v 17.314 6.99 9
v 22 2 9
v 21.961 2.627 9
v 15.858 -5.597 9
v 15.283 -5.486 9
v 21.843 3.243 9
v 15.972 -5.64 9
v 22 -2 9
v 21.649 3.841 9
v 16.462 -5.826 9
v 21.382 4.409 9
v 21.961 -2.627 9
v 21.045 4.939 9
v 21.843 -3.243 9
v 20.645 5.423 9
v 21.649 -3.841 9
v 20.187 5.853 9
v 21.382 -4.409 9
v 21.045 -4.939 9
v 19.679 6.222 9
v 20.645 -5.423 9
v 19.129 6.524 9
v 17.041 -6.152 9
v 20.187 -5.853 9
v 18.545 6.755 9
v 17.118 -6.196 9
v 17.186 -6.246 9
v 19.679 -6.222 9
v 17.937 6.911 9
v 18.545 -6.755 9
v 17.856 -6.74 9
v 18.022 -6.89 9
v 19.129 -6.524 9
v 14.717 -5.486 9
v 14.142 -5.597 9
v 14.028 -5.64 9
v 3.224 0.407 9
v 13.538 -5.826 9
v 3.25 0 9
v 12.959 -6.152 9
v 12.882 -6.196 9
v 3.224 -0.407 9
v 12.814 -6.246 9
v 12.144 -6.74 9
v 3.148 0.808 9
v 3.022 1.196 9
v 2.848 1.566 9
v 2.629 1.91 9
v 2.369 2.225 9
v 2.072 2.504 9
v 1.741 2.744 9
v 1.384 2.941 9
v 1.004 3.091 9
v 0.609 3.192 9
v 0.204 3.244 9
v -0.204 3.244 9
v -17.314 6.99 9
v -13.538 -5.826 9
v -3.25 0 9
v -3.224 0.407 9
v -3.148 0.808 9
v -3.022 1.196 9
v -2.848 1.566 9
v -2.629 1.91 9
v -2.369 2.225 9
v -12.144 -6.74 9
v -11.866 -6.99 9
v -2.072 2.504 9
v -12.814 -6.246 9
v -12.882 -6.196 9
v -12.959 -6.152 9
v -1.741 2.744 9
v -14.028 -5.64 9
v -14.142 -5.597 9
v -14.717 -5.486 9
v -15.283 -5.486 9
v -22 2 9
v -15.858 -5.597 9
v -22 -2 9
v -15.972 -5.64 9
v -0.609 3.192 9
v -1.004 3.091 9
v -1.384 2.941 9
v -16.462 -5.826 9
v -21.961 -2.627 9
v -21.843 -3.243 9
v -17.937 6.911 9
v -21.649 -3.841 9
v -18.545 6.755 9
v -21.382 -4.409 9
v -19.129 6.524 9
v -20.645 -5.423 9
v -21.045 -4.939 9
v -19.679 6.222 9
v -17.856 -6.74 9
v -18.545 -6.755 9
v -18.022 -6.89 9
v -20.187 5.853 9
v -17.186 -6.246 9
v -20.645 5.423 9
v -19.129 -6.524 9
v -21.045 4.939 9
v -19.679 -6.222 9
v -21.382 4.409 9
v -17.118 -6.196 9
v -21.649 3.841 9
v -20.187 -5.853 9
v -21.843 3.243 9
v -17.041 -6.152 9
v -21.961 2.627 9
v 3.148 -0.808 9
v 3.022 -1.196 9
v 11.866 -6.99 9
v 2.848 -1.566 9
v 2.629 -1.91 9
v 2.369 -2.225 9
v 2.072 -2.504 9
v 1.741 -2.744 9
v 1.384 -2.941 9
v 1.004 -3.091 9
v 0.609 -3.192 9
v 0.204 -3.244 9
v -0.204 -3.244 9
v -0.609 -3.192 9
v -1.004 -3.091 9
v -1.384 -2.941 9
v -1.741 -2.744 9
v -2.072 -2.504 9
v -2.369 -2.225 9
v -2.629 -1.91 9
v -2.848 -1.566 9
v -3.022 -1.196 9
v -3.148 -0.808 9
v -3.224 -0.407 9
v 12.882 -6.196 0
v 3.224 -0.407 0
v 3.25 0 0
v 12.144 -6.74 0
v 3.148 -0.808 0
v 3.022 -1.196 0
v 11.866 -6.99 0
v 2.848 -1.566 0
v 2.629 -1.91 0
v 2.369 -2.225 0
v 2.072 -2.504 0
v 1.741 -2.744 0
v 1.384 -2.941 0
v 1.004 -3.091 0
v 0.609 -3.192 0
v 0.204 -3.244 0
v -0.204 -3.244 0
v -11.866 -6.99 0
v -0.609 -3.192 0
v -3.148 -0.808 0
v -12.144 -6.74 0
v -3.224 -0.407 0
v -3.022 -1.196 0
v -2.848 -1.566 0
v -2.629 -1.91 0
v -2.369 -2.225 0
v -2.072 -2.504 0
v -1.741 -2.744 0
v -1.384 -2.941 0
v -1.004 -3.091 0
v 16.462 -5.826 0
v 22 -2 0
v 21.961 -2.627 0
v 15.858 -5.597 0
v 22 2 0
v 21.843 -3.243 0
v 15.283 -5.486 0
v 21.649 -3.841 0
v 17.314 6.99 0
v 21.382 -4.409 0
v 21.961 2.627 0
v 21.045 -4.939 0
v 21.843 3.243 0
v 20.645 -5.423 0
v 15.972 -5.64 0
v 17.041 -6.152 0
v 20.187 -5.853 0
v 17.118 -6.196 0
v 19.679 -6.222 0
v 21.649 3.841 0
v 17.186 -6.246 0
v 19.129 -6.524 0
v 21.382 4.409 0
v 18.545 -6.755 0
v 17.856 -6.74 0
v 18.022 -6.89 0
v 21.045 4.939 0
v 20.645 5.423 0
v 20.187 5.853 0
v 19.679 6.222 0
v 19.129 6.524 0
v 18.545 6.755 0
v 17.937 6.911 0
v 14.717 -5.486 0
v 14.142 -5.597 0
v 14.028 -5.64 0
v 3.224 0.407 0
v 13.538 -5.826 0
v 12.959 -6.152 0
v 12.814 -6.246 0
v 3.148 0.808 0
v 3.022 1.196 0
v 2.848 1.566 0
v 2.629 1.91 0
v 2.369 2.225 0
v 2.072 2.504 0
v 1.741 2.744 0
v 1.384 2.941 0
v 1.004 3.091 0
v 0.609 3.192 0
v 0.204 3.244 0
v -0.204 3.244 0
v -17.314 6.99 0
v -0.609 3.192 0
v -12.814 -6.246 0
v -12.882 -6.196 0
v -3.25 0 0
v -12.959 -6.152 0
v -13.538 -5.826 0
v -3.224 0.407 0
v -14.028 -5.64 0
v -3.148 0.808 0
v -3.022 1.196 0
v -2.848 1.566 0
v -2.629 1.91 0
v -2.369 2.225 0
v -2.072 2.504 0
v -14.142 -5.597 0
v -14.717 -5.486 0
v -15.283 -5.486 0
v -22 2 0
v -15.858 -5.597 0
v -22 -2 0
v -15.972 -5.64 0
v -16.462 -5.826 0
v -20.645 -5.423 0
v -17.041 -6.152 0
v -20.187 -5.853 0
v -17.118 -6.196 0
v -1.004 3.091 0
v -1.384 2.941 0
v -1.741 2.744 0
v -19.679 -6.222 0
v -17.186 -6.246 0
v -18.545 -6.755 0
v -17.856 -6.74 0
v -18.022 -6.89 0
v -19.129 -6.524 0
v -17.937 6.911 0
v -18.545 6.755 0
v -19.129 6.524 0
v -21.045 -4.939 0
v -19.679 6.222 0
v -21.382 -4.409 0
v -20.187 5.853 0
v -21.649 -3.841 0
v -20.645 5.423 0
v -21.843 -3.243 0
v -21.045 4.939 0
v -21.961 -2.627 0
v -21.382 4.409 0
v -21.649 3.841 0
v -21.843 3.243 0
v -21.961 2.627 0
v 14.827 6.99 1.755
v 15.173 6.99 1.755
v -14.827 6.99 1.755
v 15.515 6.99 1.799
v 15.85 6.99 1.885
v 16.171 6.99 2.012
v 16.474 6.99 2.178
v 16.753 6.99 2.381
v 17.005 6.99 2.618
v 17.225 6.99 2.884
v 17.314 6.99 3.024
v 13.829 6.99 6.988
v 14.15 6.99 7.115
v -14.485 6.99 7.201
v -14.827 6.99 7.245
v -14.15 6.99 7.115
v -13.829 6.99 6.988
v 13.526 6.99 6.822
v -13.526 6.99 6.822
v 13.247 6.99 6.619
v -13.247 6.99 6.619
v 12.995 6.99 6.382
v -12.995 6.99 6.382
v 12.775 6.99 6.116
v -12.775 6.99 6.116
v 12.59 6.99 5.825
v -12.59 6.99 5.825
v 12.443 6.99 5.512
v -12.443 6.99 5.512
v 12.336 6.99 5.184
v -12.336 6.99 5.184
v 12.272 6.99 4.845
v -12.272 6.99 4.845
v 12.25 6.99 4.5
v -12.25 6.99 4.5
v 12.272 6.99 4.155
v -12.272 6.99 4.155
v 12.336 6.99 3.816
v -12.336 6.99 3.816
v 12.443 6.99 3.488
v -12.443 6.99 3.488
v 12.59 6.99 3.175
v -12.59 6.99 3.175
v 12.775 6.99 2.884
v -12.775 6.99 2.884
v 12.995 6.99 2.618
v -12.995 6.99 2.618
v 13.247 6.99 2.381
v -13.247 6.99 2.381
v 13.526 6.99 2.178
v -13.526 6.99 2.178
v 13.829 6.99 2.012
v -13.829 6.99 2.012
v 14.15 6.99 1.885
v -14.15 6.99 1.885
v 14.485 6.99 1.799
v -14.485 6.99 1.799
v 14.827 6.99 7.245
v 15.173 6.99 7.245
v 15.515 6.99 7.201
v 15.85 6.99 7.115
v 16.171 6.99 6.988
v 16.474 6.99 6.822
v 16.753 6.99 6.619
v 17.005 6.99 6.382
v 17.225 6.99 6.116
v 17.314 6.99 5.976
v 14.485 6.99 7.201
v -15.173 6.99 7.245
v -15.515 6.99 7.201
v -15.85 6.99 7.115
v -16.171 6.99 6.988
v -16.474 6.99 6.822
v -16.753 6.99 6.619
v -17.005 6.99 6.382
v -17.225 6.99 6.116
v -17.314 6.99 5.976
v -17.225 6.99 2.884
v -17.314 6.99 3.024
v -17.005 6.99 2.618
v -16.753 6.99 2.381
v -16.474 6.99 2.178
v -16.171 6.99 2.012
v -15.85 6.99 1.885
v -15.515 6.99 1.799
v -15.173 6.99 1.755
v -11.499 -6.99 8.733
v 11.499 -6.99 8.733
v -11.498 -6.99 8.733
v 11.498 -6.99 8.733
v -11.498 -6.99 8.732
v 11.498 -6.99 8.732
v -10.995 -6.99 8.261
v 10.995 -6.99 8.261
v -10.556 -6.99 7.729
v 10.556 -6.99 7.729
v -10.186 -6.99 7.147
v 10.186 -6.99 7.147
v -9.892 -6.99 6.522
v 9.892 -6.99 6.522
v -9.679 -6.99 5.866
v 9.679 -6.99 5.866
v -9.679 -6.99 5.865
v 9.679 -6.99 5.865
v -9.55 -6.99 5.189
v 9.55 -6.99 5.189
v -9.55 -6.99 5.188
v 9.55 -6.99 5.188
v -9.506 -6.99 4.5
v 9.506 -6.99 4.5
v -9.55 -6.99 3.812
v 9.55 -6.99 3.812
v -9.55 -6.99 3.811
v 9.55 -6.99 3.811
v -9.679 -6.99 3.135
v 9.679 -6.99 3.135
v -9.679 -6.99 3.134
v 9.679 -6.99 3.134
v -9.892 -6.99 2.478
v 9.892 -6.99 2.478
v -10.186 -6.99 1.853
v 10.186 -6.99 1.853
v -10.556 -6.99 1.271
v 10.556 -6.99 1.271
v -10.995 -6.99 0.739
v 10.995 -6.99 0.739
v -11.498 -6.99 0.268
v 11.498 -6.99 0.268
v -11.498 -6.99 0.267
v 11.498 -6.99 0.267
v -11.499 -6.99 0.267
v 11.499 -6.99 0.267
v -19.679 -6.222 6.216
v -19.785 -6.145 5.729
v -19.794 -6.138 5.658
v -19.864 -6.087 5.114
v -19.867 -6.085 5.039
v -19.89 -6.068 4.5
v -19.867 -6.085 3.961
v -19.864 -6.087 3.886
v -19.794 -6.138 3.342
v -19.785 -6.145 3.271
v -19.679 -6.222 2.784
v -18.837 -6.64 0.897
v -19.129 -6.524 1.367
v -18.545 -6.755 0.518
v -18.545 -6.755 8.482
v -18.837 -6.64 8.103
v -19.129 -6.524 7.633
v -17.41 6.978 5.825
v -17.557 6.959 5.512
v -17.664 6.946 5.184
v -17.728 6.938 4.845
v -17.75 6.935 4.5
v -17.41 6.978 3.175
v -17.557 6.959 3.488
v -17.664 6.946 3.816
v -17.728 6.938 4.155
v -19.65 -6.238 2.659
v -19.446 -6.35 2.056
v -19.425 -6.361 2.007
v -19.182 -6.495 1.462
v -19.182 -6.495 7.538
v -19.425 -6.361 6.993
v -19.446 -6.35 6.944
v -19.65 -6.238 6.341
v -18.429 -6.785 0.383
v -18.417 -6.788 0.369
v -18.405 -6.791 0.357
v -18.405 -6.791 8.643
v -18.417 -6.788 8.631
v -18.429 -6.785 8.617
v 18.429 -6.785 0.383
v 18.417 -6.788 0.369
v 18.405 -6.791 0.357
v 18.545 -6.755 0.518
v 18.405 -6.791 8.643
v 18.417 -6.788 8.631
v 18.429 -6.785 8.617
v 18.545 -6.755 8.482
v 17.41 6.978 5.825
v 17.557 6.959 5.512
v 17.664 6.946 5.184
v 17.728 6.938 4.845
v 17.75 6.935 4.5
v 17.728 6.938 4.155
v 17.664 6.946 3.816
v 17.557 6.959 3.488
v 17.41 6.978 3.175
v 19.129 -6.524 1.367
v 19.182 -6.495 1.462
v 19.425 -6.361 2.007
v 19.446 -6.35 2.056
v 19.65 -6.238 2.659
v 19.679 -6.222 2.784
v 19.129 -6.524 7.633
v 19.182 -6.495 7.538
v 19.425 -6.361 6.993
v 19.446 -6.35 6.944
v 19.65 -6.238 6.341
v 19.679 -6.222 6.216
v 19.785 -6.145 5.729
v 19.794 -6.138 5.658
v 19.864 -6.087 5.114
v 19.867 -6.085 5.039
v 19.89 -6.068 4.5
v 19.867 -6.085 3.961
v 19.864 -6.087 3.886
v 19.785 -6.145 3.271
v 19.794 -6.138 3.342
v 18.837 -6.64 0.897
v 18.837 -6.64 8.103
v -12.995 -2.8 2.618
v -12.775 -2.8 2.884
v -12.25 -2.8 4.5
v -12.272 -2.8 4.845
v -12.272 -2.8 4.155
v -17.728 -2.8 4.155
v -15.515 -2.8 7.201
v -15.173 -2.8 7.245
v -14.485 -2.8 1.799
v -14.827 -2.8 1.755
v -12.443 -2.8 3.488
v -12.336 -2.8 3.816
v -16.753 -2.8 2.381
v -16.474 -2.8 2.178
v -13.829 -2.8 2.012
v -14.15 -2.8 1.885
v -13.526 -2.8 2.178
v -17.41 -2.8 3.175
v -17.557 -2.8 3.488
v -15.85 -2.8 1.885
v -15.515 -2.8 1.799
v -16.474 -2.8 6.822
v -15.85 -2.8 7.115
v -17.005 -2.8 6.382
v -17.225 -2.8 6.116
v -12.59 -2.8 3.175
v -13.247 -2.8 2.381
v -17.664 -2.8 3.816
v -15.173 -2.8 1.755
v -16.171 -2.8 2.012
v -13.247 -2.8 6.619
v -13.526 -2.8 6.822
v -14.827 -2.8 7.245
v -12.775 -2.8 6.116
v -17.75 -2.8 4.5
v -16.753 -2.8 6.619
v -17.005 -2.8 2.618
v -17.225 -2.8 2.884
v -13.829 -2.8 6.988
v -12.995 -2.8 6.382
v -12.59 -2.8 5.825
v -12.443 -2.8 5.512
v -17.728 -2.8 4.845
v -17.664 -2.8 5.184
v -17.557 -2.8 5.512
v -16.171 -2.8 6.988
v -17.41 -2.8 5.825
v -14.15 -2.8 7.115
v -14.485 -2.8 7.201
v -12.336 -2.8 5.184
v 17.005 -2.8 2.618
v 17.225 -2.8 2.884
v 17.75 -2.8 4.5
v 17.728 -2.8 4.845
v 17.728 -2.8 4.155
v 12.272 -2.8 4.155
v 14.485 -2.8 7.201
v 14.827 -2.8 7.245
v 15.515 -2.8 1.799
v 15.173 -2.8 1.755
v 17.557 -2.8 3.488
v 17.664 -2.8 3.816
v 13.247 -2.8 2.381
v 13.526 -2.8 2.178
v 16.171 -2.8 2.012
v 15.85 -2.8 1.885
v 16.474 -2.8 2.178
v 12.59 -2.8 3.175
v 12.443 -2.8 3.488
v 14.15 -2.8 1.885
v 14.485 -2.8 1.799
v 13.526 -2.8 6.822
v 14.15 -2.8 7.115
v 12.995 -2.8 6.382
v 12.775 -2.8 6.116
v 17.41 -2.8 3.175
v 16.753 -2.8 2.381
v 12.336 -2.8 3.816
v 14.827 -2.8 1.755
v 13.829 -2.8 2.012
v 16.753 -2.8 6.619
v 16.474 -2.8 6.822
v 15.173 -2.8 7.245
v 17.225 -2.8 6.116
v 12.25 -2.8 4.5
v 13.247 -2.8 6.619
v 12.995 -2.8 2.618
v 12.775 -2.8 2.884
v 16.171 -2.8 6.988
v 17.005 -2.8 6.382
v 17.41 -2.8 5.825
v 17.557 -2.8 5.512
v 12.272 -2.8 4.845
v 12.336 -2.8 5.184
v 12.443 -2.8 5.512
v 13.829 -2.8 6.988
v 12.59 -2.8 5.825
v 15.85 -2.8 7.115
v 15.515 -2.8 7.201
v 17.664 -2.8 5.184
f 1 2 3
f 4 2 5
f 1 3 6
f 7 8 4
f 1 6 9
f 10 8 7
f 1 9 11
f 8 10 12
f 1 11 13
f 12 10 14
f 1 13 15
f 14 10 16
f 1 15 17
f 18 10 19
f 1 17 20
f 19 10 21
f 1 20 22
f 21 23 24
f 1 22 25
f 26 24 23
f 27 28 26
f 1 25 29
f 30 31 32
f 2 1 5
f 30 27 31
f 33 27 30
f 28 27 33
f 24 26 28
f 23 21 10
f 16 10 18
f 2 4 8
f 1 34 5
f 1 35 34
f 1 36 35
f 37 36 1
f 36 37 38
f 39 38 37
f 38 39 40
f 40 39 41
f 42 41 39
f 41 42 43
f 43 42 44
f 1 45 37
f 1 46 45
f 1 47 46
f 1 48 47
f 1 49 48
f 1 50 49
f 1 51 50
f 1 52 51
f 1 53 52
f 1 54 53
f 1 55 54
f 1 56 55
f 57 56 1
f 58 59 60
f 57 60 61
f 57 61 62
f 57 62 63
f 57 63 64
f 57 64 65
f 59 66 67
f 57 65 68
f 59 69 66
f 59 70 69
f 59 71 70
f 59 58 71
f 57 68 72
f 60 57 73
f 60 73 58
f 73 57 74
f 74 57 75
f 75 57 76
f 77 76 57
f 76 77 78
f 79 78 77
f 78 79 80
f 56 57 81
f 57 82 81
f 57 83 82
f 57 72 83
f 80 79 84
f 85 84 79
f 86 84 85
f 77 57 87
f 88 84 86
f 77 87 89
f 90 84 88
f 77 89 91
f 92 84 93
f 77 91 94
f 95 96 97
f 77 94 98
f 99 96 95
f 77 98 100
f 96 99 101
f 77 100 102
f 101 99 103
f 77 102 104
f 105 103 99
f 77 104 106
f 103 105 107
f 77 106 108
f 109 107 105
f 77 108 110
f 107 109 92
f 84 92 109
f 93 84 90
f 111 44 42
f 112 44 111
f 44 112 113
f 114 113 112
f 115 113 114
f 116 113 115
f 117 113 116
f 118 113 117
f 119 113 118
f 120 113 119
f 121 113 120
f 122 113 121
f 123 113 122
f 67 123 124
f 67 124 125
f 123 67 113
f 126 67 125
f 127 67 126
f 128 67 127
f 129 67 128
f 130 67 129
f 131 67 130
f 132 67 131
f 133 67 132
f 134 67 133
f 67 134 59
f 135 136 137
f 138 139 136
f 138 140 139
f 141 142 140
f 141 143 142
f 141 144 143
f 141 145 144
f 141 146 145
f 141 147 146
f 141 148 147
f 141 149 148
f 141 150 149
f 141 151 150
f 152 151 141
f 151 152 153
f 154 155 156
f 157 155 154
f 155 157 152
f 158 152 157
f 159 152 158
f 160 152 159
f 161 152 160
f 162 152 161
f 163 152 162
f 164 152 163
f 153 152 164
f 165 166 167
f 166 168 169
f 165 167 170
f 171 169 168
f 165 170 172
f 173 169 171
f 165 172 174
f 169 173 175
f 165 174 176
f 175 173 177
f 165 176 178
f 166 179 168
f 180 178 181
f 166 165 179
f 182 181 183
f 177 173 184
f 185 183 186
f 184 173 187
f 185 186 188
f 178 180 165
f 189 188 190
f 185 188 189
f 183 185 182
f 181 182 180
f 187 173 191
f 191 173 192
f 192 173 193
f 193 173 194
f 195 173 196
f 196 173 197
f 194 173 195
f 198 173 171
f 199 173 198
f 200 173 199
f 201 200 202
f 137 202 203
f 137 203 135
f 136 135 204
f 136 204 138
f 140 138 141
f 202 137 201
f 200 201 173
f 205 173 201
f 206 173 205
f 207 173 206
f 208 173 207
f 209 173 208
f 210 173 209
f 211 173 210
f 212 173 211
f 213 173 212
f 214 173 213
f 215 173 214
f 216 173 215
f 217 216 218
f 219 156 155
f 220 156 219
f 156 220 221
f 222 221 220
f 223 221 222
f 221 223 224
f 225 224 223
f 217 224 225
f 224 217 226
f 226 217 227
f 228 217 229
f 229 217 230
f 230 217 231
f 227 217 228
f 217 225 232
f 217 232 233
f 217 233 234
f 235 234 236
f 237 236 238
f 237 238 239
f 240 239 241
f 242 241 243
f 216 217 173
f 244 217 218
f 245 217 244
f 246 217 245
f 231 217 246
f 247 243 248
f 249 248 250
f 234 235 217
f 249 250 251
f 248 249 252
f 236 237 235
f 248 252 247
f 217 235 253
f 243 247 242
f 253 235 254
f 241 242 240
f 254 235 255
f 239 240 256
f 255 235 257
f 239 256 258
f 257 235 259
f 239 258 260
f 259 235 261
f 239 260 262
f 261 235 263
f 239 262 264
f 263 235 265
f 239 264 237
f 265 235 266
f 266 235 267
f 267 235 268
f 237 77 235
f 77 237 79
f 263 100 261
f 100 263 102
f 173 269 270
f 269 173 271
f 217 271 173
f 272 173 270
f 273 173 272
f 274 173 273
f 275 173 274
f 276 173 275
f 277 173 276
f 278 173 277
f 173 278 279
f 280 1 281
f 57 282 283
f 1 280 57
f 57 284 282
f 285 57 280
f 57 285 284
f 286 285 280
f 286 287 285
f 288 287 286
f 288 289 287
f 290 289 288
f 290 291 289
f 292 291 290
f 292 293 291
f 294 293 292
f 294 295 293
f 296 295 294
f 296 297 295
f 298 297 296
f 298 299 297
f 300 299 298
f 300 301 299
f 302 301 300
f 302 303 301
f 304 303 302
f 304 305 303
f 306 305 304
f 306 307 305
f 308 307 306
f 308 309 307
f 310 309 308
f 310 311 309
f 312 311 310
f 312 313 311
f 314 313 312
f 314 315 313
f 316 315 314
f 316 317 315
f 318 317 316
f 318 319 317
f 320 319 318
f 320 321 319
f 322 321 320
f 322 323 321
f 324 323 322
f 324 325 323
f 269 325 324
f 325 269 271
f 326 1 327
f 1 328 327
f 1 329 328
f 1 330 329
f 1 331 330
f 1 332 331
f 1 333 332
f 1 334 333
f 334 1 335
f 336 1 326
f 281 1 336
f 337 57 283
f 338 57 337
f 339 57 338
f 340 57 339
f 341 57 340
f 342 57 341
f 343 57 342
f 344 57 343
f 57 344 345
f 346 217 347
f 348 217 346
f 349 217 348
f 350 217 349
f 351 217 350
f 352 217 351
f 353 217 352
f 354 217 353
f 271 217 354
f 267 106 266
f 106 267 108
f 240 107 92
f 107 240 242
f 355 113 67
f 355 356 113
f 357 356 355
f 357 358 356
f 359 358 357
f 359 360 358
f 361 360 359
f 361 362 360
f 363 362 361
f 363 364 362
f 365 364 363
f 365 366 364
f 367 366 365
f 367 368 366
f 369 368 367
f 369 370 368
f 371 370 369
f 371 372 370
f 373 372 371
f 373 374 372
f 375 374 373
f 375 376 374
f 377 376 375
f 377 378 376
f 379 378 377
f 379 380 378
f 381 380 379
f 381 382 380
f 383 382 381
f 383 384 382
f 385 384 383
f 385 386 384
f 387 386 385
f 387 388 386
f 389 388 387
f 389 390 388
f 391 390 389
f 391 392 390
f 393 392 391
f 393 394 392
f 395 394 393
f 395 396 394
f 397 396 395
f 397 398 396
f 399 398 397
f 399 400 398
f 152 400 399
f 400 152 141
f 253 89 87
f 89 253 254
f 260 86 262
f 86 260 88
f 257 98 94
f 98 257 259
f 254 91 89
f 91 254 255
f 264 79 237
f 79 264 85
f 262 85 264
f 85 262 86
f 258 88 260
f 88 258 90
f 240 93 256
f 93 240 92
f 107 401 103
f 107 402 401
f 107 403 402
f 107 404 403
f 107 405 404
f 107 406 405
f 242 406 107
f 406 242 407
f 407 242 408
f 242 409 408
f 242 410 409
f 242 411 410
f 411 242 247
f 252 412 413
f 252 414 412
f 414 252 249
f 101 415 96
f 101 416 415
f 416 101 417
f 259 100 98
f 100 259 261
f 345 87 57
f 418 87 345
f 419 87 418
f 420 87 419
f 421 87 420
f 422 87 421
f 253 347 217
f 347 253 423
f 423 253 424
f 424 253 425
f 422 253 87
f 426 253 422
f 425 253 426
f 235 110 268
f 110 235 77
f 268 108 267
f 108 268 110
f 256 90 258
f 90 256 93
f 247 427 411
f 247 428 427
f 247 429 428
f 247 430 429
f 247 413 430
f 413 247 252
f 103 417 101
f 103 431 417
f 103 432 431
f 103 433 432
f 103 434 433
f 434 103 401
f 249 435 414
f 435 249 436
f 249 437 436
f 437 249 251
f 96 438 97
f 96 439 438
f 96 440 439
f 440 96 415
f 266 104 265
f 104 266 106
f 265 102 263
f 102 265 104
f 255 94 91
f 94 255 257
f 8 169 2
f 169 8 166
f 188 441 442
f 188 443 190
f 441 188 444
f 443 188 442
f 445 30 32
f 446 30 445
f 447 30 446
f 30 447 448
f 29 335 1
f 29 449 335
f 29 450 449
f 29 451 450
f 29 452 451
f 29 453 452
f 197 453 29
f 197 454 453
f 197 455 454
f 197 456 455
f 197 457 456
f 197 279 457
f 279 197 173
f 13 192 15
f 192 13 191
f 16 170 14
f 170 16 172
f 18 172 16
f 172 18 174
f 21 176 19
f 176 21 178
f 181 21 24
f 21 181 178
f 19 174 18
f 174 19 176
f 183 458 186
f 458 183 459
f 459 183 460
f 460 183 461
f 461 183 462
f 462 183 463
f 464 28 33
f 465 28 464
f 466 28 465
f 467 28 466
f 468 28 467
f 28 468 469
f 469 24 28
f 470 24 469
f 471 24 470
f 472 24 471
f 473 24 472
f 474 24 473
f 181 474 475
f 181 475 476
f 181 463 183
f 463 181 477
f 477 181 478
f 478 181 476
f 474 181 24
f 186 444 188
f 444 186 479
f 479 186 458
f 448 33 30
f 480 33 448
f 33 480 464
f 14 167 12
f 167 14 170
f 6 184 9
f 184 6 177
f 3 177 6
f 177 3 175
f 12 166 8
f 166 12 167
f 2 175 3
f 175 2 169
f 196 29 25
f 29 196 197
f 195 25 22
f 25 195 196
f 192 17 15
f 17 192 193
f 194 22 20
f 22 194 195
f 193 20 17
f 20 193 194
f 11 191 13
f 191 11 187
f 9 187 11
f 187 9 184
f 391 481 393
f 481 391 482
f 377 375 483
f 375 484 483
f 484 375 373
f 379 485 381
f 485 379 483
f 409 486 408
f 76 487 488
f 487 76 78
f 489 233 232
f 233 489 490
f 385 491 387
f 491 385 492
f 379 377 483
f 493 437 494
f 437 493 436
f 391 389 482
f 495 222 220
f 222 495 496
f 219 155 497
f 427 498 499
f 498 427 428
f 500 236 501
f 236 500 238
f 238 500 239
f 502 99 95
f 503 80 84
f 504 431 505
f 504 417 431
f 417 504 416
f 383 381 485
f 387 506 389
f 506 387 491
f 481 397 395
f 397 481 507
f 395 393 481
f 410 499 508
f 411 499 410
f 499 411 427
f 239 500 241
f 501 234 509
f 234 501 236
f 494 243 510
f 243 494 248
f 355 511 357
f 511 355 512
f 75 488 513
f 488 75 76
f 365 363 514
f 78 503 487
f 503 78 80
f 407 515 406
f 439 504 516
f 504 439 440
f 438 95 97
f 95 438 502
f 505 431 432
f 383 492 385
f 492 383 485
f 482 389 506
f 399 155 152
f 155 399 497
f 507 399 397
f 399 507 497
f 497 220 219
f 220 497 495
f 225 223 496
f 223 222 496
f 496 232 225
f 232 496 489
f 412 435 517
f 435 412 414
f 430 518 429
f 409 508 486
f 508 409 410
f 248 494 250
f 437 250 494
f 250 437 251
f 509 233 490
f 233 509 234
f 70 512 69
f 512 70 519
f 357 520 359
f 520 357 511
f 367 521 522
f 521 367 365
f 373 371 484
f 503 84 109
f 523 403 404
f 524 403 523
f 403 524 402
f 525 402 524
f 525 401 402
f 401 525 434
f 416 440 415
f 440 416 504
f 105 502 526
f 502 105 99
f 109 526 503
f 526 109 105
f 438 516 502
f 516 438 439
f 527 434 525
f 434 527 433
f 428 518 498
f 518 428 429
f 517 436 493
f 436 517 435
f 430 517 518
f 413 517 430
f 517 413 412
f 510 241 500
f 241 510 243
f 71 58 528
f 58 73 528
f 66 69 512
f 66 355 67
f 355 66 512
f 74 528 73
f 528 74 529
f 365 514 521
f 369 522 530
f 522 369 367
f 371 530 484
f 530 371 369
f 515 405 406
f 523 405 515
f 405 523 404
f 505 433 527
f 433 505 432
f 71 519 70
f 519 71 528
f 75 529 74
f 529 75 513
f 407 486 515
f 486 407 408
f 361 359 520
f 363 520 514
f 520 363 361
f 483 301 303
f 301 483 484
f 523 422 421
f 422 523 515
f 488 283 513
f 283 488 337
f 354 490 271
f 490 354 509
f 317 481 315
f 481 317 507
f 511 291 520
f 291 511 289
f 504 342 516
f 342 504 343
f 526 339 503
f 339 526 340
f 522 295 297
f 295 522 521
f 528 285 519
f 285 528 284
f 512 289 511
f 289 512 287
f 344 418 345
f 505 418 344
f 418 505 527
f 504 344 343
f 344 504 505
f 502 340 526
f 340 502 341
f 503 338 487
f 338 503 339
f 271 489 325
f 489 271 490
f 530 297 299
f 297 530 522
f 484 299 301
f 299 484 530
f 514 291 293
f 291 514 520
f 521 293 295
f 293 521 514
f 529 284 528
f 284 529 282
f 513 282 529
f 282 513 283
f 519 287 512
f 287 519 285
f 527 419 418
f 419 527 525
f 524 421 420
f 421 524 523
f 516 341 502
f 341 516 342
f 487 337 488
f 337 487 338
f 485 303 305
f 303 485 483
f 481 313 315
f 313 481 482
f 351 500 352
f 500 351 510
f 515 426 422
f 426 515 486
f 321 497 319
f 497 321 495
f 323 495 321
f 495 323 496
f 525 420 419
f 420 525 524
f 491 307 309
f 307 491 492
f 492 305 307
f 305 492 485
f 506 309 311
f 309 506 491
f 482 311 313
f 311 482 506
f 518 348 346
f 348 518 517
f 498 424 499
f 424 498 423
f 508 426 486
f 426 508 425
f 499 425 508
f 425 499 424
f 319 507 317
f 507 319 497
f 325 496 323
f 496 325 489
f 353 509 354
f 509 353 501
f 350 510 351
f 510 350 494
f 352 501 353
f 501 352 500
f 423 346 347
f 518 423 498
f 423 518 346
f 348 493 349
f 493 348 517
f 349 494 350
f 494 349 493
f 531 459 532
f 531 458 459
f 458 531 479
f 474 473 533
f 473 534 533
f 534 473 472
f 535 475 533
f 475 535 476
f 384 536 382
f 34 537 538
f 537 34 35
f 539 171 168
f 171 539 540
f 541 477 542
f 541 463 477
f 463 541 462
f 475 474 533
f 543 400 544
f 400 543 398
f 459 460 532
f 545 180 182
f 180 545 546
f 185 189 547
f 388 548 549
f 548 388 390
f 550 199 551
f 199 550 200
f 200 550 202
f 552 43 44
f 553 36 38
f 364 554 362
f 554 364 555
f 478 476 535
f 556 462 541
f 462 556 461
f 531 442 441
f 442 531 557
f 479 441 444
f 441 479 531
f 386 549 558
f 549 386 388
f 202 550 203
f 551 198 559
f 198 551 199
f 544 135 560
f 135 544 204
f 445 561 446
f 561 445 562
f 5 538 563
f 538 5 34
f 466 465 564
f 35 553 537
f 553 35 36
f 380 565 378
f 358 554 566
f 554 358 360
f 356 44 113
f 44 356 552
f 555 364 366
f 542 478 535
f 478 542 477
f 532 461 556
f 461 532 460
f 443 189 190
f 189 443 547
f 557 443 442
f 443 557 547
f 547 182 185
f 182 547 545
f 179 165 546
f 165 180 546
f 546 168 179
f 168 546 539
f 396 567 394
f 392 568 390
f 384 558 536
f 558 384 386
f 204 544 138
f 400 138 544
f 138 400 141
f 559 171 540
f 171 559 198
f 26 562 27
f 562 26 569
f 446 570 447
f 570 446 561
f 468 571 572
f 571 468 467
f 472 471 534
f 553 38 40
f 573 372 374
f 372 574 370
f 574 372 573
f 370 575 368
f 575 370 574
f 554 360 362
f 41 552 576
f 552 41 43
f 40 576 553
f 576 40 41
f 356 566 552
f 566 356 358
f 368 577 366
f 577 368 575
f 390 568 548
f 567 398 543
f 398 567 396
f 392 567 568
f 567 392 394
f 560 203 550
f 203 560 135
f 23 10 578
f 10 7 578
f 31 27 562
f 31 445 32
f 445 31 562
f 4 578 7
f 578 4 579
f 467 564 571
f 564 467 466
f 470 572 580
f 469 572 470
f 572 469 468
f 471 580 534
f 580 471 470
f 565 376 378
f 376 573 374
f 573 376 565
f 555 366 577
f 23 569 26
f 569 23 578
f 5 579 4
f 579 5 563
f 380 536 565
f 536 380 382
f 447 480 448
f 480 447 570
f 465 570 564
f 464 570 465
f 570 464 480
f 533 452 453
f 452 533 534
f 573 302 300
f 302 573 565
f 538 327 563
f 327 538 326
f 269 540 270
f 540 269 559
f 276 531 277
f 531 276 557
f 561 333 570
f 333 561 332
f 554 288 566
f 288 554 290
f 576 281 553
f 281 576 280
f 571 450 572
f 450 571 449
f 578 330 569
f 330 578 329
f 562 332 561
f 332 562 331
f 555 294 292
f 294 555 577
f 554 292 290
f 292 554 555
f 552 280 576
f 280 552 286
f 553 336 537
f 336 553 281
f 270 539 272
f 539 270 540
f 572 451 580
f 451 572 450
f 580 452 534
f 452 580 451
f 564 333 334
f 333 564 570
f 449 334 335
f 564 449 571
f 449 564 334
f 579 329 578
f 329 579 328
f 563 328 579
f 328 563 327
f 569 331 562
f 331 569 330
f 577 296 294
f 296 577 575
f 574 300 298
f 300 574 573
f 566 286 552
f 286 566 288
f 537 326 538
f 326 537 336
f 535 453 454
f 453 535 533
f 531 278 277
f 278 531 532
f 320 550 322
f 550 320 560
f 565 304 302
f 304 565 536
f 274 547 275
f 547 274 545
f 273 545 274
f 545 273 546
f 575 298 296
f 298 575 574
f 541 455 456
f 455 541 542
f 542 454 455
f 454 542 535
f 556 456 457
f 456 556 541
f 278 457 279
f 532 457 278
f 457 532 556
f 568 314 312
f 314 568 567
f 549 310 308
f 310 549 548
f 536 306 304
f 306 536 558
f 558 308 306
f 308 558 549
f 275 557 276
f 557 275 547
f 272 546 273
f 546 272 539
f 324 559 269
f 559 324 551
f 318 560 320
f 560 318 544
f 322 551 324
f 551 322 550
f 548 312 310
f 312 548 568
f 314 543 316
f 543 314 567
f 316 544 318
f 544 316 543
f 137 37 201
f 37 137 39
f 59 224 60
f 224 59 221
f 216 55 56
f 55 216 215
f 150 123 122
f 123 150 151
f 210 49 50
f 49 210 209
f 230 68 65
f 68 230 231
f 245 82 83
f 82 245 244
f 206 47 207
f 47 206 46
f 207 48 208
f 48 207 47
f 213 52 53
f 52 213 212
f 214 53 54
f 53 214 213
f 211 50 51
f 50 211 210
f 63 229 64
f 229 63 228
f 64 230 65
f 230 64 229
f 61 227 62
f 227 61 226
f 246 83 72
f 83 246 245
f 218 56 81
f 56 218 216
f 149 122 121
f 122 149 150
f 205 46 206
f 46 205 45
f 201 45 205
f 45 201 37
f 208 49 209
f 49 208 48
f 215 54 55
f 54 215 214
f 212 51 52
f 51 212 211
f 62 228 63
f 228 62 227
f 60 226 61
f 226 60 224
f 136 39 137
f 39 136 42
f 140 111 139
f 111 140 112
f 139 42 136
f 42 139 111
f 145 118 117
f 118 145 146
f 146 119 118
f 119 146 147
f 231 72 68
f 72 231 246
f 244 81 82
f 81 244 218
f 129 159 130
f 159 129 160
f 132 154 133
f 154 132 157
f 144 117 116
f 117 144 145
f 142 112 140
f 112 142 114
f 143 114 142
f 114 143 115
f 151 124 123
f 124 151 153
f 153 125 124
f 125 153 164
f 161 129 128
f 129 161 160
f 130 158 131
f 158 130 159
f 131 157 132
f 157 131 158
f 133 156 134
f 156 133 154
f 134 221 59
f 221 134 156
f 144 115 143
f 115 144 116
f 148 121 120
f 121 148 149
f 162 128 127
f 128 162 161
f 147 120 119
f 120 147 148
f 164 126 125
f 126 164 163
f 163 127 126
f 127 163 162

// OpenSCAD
$fn = 50;


difference() {
	union() {
		cylinder(h = 9, r = 7.0000000000);
		translate(v = [-7.5000000000, 0.0000000000, 0]) {
			hull() {
				translate(v = [-9.5000000000, 2.0000000000, 0]) {
					cylinder(h = 9, r = 5);
				}
				translate(v = [9.5000000000, 2.0000000000, 0]) {
					cylinder(h = 9, r = 5);
				}
				translate(v = [-9.5000000000, -2.0000000000, 0]) {
					cylinder(h = 9, r = 5);
				}
				translate(v = [9.5000000000, -2.0000000000, 0]) {
					cylinder(h = 9, r = 5);
				}
			}
		}
		translate(v = [7.5000000000, 0.0000000000, 0]) {
			hull() {
				translate(v = [-9.5000000000, 2.0000000000, 0]) {
					cylinder(h = 9, r = 5);
				}
				translate(v = [9.5000000000, 2.0000000000, 0]) {
					cylinder(h = 9, r = 5);
				}
				translate(v = [-9.5000000000, -2.0000000000, 0]) {
					cylinder(h = 9, r = 5);
				}
				translate(v = [9.5000000000, -2.0000000000, 0]) {
					cylinder(h = 9, r = 5);
				}
			}
		}
	}
	union() {
		translate(v = [-15.0000000000, -7.0000000000, 4.5000000000]) {
			rotate(a = [90, 0, 0]) {
				difference() {
					union() {
						#translate(v = [0, 0, -14.0000000000]) {
							cylinder(h = 14, r = 2.2500000000);
						}
						#translate(v = [0, 0, -4.2000000000]) {
							cylinder(h = 4.2000000000, r1 = 2.7500000000, r2 = 5.5000000000);
						}
						#translate(v = [0, 0, -14.0000000000]) {
							cylinder(h = 14, r = 2.7500000000);
						}
						#translate(v = [0, 0, -14.0000000000]) {
							cylinder(h = 14, r = 2.2500000000);
						}
					}
					union();
				}
			}
		}
		translate(v = [15.0000000000, -7.0000000000, 4.5000000000]) {
			rotate(a = [90, 0, 0]) {
				difference() {
					union() {
						#translate(v = [0, 0, -14.0000000000]) {
							cylinder(h = 14, r = 2.2500000000);
						}
						#translate(v = [0, 0, -4.2000000000]) {
							cylinder(h = 4.2000000000, r1 = 2.7500000000, r2 = 5.5000000000);
						}
						#translate(v = [0, 0, -14.0000000000]) {
							cylinder(h = 14, r = 2.7500000000);
						}
						#translate(v = [0, 0, -14.0000000000]) {
							cylinder(h = 14, r = 2.2500000000);
						}
					}
					union();
				}
			}
		}
		translate(v = [0, 0, -100]) {
			cylinder(h = 200, r = 3.2500000000);
		}
		translate(v = [0, 0, -100]) {
			cylinder(h = 200, r = 1.8000000000);
		}
	}
}
